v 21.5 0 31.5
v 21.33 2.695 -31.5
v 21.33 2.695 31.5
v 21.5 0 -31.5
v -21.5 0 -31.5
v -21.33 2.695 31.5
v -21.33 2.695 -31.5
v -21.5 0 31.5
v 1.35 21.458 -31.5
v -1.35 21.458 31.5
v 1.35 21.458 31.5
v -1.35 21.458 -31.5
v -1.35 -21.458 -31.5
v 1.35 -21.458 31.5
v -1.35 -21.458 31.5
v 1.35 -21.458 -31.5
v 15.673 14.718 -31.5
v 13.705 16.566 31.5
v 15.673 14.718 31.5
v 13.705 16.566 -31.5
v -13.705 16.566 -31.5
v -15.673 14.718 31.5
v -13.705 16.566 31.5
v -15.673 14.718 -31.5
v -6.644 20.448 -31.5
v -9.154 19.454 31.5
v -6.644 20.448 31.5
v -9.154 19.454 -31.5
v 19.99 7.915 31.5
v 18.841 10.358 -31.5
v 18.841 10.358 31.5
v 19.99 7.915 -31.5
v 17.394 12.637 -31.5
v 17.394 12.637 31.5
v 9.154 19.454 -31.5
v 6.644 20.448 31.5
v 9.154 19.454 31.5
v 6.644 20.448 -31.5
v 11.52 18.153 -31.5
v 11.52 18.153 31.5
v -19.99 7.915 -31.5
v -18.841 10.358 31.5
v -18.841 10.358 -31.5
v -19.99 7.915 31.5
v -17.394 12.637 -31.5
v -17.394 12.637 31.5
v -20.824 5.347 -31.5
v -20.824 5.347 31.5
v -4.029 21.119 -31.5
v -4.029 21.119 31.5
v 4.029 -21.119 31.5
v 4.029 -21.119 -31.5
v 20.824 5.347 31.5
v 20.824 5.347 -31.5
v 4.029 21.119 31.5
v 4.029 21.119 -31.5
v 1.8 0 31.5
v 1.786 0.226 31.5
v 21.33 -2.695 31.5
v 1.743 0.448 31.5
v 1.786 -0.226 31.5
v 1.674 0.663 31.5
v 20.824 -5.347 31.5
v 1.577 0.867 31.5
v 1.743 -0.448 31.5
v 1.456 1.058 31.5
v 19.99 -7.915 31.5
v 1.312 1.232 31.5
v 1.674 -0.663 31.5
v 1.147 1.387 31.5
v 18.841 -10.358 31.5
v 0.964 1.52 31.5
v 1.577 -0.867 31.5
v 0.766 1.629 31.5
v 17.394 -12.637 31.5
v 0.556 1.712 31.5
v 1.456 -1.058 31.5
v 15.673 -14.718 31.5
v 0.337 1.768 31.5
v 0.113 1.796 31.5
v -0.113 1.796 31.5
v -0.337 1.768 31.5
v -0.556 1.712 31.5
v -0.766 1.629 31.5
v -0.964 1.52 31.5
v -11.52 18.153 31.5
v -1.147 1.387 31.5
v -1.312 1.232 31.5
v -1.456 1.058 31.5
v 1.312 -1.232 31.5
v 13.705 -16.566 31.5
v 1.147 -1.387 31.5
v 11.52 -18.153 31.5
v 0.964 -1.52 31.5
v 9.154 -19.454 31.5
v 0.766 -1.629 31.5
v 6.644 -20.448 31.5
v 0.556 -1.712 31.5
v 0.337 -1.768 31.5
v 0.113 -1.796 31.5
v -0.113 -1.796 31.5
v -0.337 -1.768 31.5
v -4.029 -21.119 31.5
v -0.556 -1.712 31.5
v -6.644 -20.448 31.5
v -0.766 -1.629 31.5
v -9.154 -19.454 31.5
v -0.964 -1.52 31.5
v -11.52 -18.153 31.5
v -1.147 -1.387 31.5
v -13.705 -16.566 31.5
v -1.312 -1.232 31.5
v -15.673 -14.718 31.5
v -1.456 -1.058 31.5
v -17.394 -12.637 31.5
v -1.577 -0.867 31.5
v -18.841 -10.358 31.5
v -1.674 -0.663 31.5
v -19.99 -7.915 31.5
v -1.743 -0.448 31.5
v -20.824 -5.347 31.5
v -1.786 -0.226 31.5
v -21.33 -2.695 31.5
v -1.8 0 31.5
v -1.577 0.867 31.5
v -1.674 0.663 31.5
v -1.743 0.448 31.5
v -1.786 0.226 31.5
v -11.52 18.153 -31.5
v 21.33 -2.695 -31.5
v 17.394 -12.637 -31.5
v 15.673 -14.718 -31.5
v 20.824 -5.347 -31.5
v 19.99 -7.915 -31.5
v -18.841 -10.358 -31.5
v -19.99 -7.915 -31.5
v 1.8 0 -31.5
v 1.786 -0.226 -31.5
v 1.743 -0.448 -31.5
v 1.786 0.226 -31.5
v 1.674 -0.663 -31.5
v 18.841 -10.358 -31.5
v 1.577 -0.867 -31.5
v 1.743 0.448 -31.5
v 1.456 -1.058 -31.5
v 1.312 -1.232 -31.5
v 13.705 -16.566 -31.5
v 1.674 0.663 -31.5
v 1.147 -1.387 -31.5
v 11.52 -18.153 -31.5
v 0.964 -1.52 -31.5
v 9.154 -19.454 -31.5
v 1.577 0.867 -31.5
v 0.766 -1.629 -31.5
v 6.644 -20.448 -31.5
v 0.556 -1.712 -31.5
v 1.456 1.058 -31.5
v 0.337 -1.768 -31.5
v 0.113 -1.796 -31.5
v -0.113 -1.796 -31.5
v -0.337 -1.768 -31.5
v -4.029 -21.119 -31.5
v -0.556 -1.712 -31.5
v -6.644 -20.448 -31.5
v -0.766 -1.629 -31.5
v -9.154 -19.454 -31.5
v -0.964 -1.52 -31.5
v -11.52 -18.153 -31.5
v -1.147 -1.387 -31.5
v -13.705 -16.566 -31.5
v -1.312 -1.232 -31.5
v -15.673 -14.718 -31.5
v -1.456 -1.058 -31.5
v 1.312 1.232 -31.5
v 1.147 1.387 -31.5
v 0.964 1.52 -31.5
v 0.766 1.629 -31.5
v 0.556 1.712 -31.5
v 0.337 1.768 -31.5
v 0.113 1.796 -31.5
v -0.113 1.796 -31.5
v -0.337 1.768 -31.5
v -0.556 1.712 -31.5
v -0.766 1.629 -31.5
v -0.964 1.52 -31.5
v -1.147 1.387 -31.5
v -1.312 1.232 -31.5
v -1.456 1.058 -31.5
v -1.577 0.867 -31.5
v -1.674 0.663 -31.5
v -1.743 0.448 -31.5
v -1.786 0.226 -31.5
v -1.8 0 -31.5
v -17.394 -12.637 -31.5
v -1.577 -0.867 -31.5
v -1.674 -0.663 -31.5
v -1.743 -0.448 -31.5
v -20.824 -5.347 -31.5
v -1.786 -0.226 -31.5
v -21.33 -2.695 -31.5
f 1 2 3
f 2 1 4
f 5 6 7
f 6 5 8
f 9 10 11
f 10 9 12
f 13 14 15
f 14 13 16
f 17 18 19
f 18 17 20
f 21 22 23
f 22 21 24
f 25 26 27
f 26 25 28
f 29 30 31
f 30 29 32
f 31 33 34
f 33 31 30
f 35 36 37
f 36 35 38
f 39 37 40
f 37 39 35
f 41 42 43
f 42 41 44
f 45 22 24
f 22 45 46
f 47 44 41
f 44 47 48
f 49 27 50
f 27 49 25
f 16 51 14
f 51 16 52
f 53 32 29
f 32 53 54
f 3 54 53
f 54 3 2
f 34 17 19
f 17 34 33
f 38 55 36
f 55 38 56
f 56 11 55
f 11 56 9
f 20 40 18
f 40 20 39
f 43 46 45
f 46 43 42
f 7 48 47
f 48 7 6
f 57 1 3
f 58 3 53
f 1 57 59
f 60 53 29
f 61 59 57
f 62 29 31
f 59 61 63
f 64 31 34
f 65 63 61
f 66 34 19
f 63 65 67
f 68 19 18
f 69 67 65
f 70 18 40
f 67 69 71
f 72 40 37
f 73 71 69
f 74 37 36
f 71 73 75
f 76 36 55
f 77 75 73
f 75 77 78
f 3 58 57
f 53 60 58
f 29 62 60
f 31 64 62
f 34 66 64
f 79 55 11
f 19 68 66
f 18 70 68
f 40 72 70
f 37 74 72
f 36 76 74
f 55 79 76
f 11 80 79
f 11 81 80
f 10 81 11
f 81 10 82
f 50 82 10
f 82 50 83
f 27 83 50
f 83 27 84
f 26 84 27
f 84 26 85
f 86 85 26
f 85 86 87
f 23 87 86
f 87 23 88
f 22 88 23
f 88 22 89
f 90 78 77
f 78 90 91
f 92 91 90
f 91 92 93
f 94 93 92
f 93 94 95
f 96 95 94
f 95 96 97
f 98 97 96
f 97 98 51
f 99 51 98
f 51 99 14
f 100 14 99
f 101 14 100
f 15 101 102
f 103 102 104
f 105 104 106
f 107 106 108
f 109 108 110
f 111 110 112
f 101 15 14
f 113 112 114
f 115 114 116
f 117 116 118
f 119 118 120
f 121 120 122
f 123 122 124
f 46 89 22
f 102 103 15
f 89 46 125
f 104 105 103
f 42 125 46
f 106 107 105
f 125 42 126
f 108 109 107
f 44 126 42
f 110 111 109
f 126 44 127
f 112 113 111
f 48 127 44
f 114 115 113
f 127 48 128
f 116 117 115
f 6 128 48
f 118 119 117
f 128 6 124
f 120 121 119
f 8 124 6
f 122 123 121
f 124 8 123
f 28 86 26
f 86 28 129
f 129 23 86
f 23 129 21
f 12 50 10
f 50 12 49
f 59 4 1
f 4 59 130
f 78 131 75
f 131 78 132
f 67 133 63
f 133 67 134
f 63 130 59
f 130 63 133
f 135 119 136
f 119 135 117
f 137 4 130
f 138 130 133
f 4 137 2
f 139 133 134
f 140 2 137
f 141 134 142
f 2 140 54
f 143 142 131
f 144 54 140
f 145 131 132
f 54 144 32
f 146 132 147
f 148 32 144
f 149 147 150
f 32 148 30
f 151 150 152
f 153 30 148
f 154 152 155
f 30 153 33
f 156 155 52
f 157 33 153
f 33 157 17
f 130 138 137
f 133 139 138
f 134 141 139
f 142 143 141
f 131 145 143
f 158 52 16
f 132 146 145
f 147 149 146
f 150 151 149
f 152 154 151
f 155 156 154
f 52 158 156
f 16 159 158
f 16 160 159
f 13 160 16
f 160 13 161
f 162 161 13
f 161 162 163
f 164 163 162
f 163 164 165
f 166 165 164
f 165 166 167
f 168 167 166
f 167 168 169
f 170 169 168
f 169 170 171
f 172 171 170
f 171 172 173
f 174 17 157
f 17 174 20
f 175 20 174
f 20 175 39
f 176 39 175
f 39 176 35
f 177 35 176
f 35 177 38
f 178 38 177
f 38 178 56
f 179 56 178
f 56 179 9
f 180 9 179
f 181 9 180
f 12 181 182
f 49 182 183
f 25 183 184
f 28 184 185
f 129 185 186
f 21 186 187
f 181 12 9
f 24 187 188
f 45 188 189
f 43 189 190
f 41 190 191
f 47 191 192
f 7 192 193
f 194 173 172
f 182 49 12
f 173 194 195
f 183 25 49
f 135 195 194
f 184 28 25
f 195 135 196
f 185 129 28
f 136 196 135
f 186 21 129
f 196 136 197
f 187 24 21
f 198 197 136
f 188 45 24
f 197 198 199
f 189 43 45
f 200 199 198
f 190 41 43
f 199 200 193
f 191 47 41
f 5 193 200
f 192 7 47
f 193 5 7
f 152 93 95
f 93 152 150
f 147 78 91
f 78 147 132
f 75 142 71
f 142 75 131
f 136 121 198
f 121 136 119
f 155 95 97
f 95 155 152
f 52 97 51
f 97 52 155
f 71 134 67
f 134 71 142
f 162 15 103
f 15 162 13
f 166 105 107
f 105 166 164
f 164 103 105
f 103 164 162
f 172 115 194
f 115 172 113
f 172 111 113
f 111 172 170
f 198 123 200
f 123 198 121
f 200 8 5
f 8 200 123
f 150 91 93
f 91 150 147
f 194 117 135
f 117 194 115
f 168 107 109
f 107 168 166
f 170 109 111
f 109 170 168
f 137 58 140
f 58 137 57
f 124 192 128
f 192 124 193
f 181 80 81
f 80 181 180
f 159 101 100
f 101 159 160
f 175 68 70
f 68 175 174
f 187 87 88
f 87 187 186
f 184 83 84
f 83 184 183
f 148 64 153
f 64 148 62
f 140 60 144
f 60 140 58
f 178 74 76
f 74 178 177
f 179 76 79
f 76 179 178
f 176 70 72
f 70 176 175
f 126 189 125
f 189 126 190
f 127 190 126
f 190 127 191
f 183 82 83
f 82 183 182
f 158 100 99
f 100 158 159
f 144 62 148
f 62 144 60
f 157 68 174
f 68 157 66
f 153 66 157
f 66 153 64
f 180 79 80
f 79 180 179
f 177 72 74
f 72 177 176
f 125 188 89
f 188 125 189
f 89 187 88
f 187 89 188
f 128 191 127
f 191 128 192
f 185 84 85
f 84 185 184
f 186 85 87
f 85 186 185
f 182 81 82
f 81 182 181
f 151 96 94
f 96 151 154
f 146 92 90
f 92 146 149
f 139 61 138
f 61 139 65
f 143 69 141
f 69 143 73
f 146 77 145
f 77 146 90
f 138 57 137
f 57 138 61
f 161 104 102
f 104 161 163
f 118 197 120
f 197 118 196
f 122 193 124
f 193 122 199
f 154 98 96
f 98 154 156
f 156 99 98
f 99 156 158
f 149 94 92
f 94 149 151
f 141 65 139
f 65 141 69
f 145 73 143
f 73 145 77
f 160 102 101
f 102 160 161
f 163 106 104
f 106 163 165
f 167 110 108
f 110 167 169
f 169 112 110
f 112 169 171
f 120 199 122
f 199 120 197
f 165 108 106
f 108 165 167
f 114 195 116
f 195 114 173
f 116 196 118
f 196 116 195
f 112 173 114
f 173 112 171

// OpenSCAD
$fn = 50;


difference() {
	union() {
		translate(v = [0, 0, -31.5000000000]) {
			cylinder(h = 63, r = 21.5000000000);
		}
	}
	union() {
		translate(v = [0, 0, -100.0000000000]) {
			cylinder(h = 200, r = 1.8000000000);
		}
	}
}
